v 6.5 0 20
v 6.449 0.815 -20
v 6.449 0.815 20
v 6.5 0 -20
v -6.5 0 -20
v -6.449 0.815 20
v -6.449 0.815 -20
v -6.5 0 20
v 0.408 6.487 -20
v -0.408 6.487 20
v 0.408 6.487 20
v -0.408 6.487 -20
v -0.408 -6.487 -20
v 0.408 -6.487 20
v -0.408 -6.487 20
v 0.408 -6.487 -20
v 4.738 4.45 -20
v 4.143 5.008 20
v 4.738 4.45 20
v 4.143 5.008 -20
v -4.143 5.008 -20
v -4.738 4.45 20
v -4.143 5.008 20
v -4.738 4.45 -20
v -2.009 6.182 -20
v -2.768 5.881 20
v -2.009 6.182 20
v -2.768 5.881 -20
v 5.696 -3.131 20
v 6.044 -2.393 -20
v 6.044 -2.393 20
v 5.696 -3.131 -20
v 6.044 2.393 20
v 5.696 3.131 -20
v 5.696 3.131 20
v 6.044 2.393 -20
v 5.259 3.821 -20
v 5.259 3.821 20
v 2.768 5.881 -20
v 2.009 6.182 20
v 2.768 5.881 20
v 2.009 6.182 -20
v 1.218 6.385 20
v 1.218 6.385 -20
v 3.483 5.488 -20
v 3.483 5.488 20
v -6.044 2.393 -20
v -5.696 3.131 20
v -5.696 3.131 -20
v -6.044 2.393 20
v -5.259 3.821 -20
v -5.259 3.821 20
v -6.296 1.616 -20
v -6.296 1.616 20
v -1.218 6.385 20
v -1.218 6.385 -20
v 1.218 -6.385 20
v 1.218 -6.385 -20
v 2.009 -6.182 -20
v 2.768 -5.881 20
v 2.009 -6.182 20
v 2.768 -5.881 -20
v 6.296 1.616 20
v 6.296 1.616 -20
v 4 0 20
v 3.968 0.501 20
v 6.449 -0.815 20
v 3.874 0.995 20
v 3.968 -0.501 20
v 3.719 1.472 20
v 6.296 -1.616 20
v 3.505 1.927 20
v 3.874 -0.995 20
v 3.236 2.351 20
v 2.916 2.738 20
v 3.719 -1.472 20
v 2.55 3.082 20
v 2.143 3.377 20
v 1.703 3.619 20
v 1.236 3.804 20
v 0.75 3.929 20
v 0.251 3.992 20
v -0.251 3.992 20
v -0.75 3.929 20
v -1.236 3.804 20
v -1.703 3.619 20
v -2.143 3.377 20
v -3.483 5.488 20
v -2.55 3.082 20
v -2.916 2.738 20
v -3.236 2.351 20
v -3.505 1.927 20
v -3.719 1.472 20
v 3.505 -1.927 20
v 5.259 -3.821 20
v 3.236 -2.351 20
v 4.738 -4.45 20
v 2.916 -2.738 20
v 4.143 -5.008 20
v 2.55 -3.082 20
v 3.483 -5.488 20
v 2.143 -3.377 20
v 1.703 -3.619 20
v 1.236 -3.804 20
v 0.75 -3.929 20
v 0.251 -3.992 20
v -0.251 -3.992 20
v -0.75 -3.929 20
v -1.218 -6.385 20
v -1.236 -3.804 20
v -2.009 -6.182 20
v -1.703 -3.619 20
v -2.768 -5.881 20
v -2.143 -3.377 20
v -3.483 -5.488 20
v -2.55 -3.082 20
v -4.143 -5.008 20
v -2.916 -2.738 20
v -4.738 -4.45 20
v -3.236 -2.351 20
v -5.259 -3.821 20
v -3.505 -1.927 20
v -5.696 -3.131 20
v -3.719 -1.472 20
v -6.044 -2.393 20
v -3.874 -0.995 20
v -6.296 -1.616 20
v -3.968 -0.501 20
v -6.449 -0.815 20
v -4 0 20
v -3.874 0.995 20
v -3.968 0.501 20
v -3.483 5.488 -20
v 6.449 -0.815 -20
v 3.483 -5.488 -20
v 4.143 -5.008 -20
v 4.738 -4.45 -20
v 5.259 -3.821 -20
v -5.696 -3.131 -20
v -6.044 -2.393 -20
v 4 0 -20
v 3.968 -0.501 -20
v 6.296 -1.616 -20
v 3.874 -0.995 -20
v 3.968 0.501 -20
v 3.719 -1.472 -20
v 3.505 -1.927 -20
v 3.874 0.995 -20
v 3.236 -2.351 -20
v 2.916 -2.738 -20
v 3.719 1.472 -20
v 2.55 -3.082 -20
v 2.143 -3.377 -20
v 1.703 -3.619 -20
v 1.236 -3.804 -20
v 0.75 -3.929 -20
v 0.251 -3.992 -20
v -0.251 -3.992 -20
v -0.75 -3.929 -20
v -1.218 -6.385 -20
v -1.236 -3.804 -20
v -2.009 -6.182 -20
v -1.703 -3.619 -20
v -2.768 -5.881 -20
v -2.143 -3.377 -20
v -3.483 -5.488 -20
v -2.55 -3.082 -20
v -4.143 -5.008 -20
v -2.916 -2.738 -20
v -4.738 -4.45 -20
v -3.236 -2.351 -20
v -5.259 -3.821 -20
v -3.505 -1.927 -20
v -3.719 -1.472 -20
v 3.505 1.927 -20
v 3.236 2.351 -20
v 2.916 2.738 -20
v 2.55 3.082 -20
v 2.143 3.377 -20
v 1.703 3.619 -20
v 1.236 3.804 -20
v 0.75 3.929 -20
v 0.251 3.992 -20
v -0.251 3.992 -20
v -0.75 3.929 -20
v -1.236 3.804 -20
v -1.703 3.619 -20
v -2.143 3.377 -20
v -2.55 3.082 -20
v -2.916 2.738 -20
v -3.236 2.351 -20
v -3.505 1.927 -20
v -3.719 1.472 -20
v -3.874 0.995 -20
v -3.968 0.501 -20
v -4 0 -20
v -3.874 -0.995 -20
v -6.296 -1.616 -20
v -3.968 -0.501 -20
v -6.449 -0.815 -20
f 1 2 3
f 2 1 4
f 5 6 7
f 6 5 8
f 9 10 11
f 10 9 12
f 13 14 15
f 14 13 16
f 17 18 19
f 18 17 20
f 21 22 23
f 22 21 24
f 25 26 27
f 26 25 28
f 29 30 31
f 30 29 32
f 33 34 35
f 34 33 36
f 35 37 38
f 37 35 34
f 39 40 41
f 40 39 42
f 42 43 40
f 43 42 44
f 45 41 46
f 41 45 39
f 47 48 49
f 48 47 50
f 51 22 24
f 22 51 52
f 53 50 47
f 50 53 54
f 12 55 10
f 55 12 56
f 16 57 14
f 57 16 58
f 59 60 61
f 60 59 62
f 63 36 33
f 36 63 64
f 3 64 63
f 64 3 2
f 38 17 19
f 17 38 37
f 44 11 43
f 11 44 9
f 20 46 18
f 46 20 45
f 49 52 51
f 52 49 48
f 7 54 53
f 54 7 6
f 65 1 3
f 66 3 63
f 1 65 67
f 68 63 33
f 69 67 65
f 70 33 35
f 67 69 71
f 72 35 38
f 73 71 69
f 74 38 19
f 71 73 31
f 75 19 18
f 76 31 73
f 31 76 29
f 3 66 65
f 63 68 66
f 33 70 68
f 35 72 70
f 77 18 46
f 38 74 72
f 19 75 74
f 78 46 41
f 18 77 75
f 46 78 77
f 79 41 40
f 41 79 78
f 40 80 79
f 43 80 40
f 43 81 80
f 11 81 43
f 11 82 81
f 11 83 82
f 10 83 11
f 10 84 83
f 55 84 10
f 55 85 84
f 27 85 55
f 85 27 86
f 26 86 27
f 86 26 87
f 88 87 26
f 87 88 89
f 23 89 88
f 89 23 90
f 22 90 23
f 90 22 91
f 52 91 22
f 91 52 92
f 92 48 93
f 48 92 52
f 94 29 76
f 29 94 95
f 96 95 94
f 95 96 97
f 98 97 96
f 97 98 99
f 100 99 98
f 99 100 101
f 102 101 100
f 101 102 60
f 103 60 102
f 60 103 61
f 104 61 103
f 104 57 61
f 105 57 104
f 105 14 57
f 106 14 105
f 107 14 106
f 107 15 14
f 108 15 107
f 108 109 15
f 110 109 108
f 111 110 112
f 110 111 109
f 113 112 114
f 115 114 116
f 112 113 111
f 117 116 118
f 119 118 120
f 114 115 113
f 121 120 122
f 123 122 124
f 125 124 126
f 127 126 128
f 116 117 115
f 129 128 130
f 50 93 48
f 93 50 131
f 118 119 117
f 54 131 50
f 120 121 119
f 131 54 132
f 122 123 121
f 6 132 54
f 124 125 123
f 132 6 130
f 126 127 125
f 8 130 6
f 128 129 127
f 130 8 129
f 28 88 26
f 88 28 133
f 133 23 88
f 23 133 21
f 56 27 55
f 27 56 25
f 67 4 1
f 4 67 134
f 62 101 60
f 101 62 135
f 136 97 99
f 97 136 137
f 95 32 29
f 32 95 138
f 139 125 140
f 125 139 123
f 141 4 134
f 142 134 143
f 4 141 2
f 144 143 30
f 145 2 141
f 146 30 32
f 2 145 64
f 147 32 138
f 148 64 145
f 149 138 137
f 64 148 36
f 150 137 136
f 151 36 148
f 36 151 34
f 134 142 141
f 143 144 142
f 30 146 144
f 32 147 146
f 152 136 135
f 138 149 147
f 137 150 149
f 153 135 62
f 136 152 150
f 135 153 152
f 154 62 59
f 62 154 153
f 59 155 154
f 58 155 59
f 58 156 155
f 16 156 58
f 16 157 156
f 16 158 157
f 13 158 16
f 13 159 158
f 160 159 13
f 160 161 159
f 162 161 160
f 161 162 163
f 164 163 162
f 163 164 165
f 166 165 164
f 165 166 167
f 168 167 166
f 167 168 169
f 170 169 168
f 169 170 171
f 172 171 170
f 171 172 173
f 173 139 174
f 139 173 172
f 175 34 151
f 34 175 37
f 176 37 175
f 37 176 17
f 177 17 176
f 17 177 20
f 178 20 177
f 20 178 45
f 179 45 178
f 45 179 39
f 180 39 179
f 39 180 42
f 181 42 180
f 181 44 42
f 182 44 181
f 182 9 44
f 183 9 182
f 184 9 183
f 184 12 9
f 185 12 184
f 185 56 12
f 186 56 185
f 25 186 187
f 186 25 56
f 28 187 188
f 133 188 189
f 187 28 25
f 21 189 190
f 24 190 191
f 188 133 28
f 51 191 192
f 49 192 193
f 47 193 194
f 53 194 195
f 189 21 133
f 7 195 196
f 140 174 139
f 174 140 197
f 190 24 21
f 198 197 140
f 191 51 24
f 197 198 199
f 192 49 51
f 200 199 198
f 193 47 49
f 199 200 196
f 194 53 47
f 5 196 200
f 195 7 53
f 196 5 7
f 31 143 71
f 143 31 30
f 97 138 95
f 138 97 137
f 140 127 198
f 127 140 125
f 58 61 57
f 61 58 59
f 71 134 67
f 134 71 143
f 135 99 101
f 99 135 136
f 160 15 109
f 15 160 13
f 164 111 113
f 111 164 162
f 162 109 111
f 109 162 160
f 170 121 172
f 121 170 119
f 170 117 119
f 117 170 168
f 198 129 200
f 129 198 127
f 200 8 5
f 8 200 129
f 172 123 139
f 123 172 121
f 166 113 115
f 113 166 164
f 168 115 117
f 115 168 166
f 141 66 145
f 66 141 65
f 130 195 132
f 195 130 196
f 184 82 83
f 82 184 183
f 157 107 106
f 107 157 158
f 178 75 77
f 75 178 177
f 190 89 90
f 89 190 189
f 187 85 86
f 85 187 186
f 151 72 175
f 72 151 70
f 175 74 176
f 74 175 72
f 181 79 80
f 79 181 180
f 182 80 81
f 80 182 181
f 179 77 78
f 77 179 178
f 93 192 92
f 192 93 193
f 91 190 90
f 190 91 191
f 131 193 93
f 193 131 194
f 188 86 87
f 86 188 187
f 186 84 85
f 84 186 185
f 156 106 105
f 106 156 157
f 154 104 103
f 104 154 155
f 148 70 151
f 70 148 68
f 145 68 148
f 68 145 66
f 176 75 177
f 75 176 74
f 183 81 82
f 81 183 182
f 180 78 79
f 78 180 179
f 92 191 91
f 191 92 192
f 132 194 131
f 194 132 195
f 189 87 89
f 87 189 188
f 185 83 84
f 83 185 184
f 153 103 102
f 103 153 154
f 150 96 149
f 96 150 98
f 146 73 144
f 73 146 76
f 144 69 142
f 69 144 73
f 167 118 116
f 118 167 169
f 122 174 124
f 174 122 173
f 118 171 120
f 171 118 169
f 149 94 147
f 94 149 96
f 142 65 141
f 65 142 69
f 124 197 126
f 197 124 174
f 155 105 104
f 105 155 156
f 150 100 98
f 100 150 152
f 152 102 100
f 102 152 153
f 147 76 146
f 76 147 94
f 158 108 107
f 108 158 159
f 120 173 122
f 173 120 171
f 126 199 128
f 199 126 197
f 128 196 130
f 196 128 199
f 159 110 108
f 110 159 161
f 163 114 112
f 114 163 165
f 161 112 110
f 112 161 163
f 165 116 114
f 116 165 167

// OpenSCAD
$fn = 50;


difference() {
	union() {
		translate(v = [0, 0, -20.0000000000]) {
			cylinder(h = 40, r = 6.5000000000);
		}
	}
	union() {
		translate(v = [0, 0, -100.0000000000]) {
			cylinder(h = 200, r = 4);
		}
	}
}
